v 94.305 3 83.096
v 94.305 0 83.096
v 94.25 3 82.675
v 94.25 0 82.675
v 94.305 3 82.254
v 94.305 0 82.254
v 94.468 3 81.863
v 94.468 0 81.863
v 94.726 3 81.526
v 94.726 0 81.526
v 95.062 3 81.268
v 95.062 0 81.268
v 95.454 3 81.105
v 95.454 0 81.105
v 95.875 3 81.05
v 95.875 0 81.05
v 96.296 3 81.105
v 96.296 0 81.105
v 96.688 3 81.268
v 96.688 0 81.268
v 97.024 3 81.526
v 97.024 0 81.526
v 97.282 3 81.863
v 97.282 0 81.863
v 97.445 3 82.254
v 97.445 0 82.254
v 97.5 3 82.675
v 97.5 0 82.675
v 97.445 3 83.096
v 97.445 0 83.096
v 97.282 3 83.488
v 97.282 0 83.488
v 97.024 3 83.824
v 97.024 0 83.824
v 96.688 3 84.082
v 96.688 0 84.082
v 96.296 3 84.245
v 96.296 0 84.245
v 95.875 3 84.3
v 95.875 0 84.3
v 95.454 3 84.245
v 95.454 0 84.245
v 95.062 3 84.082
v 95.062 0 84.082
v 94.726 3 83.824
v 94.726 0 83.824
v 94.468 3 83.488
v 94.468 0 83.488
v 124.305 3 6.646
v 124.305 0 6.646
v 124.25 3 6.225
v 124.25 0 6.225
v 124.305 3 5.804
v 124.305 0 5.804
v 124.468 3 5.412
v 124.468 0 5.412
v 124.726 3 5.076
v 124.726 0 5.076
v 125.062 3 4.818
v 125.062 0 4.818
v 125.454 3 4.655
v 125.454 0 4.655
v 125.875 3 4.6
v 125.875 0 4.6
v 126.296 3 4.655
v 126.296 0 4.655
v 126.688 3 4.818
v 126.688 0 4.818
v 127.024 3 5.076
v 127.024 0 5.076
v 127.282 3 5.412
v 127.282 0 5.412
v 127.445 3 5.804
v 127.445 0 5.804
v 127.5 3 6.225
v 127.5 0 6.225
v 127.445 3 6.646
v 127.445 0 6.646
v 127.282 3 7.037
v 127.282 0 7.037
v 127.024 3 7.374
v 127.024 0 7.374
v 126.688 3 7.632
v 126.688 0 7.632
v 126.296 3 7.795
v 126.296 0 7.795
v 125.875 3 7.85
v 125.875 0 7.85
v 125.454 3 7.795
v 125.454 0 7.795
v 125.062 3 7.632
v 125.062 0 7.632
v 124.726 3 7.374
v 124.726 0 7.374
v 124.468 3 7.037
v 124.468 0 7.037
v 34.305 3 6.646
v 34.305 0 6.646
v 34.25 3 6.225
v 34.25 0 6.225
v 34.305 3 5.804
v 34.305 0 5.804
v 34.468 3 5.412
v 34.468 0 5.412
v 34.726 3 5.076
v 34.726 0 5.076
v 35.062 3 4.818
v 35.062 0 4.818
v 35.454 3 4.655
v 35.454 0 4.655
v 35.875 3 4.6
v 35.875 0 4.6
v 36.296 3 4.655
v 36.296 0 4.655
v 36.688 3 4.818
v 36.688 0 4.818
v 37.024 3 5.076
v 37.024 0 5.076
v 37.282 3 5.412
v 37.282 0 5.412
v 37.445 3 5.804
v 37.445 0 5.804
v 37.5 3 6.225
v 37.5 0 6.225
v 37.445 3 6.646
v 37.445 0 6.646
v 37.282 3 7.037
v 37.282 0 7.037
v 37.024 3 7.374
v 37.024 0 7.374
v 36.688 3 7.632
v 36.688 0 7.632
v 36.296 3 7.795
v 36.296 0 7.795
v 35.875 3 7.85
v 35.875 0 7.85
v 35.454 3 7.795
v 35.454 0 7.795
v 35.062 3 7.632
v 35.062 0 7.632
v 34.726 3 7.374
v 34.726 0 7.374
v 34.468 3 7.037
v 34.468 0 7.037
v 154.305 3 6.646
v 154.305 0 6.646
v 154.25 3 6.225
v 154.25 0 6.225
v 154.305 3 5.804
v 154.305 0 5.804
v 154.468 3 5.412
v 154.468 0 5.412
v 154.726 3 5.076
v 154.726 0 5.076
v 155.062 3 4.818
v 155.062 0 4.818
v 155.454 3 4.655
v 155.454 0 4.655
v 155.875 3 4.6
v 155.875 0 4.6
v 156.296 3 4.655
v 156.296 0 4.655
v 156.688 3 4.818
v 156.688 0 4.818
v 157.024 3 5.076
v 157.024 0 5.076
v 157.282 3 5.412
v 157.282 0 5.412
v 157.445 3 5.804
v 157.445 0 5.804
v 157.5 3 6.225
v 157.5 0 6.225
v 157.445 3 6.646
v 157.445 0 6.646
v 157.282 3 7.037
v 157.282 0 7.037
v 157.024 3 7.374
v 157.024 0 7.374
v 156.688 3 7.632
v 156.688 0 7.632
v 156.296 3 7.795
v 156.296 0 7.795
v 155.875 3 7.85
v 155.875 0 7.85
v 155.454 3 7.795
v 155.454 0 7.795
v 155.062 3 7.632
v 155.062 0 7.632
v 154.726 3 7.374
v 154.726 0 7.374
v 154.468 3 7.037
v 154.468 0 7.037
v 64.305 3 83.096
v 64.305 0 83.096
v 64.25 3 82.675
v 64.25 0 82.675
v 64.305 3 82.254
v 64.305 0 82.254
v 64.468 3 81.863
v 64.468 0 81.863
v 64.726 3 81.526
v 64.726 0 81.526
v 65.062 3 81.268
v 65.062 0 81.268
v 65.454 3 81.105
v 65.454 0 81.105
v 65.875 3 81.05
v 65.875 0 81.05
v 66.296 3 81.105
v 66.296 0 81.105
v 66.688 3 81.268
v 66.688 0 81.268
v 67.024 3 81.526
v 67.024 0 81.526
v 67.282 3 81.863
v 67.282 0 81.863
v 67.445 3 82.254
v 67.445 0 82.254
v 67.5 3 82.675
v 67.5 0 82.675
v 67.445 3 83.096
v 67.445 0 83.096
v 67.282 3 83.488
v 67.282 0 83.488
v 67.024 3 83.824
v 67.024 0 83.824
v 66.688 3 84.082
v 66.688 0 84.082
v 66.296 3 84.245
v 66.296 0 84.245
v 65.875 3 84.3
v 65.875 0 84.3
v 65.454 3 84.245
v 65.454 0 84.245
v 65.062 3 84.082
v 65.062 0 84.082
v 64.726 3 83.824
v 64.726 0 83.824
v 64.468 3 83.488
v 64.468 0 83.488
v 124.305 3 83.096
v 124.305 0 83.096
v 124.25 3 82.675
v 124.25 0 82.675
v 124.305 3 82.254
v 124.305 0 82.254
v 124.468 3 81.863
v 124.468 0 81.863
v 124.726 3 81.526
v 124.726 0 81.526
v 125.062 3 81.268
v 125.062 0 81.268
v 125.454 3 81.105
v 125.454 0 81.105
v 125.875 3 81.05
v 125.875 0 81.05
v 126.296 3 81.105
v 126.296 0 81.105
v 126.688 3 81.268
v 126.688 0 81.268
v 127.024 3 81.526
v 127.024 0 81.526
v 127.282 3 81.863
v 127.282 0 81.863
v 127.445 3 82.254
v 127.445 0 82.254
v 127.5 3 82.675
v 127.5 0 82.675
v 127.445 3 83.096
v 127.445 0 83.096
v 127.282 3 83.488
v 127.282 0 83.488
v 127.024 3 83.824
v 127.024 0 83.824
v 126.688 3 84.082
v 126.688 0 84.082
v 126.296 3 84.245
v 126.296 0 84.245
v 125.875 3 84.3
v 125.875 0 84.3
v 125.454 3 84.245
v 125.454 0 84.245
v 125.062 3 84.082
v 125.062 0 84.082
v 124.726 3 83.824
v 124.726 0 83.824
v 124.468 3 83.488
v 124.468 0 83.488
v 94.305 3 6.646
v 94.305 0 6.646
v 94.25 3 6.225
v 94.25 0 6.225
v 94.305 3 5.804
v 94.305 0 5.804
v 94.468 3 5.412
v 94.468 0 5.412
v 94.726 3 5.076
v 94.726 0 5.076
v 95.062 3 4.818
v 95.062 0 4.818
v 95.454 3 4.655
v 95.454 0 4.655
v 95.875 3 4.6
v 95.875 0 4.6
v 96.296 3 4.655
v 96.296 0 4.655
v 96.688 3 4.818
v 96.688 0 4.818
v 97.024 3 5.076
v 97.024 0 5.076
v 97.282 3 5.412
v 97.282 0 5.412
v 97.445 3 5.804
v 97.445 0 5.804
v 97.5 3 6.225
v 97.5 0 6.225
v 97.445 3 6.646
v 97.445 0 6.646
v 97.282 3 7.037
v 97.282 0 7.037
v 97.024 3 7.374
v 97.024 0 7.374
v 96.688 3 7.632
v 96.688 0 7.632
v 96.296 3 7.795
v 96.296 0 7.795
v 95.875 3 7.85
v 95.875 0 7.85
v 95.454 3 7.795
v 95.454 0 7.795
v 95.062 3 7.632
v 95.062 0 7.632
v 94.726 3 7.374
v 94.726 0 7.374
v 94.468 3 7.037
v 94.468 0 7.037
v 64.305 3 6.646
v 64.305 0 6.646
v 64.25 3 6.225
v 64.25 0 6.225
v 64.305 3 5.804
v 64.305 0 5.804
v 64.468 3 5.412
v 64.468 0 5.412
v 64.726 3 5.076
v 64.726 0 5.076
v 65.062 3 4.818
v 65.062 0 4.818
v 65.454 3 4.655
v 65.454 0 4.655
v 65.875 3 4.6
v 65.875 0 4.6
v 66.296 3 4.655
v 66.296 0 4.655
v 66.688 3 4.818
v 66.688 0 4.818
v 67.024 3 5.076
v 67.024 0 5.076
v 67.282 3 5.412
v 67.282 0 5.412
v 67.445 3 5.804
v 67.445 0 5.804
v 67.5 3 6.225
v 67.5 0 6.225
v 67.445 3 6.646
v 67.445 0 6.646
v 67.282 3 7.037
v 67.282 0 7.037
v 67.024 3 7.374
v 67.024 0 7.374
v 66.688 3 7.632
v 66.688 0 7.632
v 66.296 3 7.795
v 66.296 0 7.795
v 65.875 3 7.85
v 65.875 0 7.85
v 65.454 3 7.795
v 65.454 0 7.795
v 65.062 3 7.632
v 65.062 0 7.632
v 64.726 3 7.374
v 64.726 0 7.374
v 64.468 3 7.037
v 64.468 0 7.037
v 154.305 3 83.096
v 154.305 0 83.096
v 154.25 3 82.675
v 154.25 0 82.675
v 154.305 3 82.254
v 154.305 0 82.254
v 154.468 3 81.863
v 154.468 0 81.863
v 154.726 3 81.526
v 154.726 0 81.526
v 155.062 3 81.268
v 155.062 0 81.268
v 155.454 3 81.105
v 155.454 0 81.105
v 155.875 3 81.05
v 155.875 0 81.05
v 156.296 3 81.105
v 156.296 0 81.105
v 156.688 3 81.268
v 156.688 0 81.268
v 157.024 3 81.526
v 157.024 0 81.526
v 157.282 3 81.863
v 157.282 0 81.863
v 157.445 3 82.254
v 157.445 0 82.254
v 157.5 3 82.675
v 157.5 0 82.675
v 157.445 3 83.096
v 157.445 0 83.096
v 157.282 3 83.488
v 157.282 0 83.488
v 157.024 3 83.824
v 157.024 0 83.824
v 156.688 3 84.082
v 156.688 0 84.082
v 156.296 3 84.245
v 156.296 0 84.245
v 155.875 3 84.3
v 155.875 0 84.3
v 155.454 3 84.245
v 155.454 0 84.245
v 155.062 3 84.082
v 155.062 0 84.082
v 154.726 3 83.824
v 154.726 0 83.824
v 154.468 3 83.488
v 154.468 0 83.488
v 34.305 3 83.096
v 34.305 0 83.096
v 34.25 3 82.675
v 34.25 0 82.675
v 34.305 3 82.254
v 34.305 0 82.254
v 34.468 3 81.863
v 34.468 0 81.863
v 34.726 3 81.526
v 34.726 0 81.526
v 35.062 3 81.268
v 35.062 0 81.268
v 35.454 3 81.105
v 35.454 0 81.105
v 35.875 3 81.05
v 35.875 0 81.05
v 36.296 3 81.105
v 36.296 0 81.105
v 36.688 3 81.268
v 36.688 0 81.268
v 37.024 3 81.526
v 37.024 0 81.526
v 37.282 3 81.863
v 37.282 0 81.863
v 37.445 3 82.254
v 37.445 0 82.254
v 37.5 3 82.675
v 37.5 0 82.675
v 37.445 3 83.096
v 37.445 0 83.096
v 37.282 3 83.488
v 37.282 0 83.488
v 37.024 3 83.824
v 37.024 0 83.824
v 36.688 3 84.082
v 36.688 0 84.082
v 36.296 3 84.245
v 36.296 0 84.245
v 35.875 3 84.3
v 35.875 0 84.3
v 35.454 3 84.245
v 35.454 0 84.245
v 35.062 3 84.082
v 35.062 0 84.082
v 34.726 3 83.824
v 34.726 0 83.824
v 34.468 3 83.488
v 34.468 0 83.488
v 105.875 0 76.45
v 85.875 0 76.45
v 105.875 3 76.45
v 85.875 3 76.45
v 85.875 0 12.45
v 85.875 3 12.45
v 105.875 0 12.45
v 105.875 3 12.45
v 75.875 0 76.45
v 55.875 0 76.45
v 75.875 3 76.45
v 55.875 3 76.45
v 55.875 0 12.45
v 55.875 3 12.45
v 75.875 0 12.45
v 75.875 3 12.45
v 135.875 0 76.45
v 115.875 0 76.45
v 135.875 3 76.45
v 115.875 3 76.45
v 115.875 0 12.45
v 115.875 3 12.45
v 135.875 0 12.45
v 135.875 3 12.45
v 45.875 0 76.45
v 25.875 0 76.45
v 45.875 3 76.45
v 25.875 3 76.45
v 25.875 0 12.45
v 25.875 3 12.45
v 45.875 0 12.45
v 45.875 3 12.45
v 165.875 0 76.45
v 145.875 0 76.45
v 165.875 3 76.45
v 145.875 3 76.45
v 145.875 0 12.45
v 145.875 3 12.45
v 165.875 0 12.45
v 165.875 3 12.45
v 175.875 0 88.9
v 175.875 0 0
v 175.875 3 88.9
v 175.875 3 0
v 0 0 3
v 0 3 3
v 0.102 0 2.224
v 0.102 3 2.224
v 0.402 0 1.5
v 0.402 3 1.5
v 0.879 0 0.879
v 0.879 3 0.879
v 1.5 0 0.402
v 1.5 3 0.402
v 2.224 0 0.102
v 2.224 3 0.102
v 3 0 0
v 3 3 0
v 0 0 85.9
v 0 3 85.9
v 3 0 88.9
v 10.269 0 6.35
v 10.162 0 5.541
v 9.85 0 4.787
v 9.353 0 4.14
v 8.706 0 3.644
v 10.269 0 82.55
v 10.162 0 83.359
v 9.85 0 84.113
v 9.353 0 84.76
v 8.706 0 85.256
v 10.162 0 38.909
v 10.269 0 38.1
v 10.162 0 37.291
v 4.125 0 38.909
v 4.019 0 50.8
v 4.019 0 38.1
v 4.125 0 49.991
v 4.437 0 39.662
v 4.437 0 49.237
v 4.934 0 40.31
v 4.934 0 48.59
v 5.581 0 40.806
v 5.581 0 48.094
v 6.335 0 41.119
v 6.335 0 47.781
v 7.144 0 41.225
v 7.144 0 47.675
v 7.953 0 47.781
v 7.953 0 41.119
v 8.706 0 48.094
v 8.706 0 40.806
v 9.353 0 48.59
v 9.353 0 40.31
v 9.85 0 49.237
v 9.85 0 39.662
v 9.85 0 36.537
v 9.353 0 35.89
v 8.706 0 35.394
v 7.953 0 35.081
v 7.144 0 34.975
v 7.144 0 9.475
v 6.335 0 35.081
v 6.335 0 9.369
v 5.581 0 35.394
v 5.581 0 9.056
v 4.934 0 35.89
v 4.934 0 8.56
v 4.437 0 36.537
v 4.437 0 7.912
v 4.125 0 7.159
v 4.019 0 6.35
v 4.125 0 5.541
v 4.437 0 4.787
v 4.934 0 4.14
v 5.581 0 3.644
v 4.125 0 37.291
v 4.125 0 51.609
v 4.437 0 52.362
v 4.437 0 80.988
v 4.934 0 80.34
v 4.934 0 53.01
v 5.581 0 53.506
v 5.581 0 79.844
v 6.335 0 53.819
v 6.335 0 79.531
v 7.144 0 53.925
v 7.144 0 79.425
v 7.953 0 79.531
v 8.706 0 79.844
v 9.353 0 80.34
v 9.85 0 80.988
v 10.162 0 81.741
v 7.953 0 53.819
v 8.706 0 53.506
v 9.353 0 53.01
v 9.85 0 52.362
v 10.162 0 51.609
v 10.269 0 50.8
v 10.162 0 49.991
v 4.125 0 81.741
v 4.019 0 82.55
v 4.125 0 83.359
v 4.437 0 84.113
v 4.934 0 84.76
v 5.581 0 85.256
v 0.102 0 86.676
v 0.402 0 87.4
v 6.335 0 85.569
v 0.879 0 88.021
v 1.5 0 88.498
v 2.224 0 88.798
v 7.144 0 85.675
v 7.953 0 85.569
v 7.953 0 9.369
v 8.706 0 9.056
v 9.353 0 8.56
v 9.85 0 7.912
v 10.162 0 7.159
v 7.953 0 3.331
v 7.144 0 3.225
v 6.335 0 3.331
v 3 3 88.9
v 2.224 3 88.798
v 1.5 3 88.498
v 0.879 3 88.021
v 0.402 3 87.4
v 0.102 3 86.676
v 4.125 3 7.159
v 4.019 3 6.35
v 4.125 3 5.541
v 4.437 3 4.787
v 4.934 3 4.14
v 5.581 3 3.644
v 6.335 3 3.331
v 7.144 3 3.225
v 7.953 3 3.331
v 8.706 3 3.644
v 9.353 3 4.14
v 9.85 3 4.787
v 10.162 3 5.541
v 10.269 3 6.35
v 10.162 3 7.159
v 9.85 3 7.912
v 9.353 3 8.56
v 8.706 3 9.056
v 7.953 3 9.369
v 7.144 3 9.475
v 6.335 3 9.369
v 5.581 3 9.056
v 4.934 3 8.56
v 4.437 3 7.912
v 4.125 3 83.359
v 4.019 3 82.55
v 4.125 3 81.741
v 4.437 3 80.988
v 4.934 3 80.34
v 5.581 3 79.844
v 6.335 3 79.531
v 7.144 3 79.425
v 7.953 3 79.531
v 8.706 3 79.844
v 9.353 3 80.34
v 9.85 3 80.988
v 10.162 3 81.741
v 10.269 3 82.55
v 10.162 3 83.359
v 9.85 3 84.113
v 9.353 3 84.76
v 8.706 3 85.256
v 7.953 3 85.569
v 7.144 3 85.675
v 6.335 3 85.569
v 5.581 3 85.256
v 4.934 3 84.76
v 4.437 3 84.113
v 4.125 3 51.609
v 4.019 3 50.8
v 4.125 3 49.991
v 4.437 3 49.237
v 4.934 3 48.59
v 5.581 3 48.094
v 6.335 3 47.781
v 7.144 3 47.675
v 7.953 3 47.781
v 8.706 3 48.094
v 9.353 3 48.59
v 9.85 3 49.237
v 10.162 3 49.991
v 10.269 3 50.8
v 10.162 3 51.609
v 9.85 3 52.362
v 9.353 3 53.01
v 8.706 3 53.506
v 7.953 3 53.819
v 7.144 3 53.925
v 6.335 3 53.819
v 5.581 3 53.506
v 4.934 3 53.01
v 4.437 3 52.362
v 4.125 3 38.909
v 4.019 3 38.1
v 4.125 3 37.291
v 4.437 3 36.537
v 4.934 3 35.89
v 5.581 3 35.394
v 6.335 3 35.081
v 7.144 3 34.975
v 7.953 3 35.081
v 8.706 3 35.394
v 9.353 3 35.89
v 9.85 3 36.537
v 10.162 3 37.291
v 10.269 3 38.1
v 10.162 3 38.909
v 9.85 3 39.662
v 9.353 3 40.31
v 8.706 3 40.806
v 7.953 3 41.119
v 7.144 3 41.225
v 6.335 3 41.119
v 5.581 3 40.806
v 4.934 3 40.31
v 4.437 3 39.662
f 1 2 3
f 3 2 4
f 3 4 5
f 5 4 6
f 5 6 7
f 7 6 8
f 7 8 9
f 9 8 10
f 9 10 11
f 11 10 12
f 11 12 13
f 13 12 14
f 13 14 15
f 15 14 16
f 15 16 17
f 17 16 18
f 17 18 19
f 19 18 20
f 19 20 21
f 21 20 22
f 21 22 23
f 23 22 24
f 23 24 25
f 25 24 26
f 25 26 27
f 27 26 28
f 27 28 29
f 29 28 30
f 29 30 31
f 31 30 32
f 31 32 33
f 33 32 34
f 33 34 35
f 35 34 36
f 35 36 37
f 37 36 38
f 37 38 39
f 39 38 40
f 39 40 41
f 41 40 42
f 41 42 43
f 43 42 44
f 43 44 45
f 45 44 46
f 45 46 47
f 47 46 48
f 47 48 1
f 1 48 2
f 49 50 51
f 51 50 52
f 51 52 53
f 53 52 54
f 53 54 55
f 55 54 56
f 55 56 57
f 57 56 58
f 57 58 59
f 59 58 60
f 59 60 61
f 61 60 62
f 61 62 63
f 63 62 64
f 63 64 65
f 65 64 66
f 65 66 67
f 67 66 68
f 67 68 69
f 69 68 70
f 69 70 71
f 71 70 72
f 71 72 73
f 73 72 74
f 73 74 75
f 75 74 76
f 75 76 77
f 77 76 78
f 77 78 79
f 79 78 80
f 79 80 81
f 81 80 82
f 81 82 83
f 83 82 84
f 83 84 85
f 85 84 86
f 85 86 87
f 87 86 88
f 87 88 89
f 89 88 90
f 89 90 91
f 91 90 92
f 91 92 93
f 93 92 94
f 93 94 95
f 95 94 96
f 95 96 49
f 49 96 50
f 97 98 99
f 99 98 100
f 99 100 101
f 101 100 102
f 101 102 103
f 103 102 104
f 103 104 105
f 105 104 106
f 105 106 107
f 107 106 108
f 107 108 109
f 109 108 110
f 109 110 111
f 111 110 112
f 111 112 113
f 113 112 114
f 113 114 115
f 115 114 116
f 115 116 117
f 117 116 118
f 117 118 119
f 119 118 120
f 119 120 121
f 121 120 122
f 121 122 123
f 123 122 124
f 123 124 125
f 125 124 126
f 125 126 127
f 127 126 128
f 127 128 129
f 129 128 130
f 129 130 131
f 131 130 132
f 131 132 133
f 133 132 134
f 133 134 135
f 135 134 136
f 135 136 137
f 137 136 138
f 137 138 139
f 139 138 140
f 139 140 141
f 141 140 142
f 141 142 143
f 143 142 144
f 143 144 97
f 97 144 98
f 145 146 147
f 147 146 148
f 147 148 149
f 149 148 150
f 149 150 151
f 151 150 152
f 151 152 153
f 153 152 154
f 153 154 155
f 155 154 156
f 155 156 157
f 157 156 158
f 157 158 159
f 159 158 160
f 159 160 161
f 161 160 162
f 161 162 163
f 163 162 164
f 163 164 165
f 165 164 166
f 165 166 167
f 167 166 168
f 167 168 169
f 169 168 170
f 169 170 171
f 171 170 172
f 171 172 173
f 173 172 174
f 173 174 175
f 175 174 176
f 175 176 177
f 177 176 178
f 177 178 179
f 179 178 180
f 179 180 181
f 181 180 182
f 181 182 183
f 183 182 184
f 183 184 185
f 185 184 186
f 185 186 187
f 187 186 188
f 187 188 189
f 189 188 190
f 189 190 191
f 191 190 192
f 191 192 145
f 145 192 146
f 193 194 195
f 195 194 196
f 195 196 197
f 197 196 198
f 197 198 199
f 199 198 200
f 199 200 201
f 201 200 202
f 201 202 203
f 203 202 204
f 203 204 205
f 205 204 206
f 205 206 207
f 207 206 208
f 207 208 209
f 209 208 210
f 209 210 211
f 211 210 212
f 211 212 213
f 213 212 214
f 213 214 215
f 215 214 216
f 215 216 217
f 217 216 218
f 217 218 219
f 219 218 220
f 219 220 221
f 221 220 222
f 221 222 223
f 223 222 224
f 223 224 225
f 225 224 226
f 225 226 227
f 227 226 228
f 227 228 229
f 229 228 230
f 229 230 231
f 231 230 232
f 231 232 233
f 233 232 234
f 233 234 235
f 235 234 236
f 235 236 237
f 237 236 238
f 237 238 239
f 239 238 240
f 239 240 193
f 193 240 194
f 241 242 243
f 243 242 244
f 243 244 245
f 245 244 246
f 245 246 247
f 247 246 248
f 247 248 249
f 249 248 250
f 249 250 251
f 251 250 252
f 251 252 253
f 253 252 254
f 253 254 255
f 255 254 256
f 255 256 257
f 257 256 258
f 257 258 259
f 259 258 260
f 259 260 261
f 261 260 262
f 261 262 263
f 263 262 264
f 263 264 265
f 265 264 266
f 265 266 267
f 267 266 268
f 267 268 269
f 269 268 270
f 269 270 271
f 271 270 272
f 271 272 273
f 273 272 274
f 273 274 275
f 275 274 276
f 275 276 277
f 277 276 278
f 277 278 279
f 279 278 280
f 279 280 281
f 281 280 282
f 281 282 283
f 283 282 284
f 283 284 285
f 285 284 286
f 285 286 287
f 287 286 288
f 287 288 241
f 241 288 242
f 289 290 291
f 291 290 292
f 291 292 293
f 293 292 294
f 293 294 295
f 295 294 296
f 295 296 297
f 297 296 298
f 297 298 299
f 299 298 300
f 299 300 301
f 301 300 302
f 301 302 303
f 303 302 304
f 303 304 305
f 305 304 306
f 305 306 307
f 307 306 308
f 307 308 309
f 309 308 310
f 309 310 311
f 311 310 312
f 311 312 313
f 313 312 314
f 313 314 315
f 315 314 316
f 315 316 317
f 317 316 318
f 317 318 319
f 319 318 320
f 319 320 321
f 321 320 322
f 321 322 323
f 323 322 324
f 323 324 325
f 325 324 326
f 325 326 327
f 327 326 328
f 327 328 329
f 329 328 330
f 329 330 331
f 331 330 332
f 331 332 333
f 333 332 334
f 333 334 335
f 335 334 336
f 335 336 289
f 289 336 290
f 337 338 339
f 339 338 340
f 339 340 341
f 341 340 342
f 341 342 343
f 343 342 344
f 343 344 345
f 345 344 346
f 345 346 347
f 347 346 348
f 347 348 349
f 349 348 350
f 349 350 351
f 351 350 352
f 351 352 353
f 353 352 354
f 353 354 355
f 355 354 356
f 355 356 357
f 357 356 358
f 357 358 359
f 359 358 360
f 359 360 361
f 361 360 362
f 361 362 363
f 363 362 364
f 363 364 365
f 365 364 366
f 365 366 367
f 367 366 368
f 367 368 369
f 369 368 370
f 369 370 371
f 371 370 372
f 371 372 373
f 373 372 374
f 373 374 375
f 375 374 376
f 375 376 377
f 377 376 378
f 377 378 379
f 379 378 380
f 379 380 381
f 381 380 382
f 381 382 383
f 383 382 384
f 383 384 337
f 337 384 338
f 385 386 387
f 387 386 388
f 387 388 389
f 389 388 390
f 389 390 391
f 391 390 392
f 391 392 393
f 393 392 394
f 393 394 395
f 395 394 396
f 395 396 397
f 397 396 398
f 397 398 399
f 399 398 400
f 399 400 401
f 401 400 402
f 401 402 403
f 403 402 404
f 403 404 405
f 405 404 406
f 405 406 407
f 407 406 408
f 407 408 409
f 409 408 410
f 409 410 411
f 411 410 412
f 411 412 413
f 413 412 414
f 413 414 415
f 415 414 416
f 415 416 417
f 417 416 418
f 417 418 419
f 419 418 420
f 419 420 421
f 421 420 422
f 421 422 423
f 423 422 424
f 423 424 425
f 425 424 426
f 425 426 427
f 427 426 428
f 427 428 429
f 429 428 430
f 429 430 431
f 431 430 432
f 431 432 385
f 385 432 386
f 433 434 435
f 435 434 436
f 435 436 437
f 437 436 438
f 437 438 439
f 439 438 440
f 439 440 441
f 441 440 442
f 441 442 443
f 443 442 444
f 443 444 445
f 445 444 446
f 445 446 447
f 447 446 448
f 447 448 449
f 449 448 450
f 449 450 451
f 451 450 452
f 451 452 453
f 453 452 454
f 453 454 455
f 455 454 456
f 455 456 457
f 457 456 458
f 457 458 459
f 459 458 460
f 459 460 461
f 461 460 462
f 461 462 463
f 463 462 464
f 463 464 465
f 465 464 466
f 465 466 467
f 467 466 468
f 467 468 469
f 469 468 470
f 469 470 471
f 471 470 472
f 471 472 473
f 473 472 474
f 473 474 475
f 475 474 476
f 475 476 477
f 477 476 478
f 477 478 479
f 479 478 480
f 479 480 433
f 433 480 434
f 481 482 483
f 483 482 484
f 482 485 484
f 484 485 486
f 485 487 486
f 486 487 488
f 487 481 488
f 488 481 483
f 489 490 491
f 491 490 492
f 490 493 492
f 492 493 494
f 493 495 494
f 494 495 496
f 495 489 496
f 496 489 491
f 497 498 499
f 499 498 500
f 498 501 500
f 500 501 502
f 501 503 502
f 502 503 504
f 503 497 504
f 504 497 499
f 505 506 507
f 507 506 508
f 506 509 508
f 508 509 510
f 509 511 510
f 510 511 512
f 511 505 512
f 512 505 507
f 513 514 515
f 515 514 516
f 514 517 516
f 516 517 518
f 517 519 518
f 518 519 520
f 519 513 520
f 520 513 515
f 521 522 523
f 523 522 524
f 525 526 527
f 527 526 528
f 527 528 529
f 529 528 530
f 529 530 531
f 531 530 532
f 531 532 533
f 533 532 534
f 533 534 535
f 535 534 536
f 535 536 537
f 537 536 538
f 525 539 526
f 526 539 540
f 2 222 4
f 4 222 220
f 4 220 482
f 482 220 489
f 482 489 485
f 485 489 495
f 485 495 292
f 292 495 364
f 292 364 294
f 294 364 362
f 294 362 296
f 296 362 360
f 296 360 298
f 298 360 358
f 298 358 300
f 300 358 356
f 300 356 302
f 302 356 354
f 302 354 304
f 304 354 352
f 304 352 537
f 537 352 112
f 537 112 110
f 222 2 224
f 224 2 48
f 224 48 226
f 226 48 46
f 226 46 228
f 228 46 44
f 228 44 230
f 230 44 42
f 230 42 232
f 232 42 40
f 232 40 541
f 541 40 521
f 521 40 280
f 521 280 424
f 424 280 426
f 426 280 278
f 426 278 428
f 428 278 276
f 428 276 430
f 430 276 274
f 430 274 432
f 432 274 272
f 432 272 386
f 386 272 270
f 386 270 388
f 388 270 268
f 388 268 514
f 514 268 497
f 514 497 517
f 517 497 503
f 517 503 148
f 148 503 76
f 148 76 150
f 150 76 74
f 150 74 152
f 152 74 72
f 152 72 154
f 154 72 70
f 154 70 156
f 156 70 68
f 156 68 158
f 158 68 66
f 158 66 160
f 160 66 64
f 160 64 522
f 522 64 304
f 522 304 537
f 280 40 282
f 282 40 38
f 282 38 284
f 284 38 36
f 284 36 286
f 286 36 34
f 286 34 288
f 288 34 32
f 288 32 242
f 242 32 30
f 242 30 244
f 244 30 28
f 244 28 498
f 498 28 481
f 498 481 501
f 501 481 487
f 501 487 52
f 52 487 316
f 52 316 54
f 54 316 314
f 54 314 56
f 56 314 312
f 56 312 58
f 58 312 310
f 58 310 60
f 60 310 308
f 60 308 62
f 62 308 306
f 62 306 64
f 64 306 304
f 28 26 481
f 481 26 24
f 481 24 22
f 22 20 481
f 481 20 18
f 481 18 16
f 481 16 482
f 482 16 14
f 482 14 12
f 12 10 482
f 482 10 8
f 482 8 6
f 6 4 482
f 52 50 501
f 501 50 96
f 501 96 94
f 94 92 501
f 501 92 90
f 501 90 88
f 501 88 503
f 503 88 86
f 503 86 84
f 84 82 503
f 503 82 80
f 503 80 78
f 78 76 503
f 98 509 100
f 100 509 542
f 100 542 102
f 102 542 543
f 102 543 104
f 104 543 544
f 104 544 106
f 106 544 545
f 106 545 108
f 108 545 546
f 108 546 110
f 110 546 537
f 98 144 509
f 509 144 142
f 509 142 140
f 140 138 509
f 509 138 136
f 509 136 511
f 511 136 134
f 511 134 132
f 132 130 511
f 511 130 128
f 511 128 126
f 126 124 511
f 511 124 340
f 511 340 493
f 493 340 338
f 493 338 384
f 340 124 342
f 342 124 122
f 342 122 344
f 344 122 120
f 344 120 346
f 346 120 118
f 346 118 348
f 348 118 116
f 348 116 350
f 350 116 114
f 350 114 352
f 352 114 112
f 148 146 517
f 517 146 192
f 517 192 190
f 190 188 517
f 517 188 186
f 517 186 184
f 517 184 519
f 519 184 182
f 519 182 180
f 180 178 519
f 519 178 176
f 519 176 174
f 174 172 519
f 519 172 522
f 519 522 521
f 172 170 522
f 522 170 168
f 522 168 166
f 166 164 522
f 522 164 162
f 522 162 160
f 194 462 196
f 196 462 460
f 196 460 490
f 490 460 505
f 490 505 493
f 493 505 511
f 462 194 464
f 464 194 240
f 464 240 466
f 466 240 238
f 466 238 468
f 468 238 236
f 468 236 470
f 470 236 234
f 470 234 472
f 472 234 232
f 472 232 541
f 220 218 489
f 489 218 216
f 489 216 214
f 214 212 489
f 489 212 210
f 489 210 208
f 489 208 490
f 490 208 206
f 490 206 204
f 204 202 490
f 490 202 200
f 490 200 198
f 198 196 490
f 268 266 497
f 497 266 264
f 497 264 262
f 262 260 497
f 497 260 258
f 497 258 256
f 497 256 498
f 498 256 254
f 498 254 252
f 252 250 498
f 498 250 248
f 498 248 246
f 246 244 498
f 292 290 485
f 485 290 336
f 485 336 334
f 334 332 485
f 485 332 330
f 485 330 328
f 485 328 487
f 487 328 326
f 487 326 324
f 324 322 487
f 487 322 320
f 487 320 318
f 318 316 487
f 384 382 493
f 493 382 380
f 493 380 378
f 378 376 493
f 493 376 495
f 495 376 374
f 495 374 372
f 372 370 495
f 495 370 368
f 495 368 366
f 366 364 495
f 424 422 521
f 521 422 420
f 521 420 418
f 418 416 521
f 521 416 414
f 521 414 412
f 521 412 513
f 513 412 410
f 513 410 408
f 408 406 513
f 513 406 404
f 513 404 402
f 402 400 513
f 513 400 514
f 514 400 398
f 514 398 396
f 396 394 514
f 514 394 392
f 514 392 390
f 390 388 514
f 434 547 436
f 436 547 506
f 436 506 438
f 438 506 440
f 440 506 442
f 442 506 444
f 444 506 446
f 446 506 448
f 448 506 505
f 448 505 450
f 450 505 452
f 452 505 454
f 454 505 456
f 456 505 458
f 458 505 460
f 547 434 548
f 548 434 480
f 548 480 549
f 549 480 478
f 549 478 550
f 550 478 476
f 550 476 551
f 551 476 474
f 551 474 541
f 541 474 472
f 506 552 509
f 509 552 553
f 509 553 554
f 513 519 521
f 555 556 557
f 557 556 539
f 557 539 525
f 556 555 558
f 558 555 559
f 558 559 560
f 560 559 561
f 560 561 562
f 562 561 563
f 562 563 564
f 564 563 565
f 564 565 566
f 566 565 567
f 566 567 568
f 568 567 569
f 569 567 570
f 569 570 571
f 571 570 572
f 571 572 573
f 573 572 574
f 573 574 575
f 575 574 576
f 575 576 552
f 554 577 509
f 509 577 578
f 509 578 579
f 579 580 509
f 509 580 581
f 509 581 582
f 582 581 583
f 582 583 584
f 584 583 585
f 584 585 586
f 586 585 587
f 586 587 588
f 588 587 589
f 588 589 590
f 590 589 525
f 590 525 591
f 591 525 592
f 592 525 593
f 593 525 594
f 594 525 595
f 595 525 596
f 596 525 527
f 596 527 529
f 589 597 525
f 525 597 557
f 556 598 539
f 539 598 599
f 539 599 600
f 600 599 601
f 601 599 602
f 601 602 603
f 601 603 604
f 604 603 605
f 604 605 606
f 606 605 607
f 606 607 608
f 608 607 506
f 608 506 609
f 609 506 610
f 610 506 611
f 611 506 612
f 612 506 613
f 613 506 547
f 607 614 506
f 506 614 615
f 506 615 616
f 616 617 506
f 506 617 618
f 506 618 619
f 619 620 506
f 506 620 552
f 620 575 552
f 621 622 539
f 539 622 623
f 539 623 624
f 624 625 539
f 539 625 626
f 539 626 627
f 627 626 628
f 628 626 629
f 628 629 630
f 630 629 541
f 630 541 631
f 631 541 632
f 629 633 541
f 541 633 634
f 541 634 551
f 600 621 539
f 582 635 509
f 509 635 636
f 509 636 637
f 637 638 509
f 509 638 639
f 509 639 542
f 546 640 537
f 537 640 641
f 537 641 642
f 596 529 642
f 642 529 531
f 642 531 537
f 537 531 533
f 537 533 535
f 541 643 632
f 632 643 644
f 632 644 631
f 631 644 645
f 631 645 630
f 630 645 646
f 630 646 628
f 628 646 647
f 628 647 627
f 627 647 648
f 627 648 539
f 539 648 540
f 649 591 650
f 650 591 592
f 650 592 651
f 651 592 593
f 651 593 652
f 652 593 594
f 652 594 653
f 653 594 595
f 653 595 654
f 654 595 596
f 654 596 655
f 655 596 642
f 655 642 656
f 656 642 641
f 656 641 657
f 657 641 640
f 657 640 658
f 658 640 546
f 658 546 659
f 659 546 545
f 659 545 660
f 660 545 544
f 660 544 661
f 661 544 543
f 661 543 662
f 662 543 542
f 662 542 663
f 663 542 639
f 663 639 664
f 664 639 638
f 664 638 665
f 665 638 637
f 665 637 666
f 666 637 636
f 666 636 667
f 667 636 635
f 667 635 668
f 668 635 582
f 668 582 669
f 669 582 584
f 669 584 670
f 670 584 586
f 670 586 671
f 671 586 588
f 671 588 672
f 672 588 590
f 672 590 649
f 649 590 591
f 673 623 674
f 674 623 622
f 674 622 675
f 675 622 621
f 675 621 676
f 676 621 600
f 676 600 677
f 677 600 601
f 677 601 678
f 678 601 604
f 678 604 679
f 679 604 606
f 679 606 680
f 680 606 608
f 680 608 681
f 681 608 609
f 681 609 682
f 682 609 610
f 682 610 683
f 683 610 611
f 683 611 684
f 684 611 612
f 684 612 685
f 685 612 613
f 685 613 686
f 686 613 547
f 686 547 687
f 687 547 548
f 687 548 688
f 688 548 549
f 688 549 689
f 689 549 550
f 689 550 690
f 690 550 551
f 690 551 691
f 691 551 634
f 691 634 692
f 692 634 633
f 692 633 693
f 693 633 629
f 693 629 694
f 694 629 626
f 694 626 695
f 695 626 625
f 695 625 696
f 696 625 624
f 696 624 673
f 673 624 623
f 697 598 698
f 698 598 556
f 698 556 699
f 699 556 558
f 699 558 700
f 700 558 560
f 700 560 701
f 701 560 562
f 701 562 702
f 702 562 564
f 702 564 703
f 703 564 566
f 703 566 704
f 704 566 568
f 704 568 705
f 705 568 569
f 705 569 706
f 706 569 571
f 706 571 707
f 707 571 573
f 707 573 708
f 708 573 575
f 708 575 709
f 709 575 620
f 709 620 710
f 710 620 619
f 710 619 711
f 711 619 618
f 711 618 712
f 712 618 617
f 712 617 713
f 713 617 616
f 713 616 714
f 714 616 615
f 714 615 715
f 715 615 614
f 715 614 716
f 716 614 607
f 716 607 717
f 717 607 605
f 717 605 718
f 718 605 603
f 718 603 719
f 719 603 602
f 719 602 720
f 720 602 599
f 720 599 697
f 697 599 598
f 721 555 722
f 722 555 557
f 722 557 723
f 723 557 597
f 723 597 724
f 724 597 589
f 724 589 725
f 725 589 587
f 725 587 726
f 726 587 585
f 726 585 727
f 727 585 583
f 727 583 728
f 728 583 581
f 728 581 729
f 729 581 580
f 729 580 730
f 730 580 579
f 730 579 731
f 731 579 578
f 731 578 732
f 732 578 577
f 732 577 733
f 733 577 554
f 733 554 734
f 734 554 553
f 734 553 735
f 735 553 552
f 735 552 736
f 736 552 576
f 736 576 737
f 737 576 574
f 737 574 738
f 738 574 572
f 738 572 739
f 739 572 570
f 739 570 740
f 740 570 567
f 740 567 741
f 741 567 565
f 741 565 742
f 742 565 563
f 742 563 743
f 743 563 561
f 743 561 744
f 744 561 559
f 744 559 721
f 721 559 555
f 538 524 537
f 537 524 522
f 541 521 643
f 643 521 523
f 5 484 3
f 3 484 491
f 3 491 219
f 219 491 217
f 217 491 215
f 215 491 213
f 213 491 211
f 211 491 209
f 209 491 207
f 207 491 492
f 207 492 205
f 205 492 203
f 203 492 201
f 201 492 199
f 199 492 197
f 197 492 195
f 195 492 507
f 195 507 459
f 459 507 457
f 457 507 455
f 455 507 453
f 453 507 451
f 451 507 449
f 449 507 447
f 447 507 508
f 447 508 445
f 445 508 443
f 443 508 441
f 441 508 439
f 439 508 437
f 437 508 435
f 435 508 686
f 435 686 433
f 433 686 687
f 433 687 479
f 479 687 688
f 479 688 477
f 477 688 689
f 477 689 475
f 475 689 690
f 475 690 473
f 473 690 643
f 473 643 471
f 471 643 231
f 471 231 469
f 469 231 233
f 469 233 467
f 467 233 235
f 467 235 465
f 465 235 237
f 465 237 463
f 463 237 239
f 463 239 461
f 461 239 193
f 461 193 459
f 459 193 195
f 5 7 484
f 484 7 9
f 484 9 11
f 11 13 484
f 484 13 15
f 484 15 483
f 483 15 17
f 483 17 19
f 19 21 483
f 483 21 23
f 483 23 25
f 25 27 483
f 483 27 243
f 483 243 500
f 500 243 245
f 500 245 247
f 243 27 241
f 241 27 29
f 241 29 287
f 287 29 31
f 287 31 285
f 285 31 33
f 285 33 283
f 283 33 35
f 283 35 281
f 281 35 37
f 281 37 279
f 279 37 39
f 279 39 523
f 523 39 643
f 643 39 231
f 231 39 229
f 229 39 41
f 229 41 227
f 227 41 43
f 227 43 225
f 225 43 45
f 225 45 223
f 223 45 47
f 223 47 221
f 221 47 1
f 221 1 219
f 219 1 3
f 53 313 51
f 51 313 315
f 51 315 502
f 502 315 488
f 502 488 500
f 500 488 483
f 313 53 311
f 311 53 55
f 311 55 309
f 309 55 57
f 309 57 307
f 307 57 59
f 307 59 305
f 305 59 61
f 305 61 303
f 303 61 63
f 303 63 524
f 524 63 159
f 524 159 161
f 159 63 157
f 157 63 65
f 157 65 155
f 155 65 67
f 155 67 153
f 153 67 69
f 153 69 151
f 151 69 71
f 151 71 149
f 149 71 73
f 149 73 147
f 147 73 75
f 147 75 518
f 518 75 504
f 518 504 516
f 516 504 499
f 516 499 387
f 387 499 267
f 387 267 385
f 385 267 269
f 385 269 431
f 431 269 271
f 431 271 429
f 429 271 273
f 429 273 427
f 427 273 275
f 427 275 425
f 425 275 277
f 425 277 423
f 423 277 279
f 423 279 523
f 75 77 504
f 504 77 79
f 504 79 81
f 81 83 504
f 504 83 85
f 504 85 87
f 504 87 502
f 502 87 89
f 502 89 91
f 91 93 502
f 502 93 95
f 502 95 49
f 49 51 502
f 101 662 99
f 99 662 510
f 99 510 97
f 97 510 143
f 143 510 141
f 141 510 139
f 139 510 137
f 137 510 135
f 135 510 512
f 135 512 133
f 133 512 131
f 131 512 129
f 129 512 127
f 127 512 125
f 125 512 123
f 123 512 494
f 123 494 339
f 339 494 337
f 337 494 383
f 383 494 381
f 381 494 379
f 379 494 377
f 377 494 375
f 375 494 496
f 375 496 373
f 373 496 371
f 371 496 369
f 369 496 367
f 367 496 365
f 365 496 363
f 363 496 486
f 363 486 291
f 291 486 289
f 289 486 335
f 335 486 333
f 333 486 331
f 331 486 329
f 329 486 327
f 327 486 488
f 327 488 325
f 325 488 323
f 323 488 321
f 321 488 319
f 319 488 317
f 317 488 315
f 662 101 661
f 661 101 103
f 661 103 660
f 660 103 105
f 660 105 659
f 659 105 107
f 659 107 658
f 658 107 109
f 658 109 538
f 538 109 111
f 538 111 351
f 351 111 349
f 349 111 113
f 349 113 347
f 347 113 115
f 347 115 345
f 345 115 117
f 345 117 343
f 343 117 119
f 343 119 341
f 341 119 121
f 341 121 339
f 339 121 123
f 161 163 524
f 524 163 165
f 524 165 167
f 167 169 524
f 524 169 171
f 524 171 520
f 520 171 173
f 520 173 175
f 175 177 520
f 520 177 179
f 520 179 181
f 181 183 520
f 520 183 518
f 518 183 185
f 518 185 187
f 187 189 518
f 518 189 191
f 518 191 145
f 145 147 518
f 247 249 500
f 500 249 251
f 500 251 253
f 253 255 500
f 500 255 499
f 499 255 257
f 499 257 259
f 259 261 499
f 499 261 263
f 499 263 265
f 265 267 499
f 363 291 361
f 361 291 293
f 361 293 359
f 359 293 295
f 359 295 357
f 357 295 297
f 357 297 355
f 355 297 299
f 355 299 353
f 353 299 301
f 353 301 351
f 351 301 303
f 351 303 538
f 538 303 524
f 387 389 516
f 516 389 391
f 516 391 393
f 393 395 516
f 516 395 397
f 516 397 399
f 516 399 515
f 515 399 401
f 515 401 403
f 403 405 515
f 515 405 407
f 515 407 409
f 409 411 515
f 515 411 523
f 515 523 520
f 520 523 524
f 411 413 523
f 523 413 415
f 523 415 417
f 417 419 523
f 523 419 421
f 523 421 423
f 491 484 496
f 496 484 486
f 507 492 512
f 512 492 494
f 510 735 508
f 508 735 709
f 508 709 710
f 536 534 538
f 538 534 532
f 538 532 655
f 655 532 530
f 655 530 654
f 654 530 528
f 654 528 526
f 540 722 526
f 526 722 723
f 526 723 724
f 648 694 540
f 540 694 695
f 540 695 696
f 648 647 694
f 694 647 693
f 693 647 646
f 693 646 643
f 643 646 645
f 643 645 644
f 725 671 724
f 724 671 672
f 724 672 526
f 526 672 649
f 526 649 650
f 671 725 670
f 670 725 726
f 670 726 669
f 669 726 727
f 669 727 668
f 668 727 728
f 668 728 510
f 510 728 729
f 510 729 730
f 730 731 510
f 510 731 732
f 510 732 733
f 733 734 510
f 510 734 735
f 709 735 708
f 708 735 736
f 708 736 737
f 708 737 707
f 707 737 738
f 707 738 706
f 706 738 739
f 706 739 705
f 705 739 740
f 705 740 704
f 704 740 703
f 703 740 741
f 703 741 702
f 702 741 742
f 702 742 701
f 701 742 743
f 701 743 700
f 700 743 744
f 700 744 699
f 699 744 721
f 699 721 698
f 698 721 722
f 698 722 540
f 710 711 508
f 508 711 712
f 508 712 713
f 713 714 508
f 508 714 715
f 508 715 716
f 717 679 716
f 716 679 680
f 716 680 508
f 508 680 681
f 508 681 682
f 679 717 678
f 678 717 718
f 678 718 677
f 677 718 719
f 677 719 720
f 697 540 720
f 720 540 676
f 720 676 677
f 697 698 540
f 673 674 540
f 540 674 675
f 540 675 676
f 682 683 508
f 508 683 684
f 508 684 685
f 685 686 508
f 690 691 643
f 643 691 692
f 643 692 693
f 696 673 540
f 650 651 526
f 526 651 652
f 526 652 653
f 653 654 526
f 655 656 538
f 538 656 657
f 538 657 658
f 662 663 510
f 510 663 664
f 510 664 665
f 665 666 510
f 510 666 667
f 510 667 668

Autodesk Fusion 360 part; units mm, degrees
sketch "Sketch1" plane through (0, 0, 0) normal (0, 1, 0) x (1, 0, 0)
  line L0 (0, 0) -> (15.875, 0)
  line L1 (15.875, 0) -> (15.875, -88.9)
  line L2 (15.875, -88.9) -> (0, -88.9)
  line L3 (0, -88.9) -> (0, 0)
  line L4 (0, -88.9) -> (15.875, -88.9)
  line L5 (15.875, -88.9) -> (15.875, -82.55)
  line L6 (15.875, -82.55) -> (0, -82.55)
  line L7 (0, -82.55) -> (0, -88.9)
  line L8 (0, -82.55) -> (15.875, -82.55)
  line L9 (15.875, -82.55) -> (15.875, -50.8)
  line L10 (15.875, -50.8) -> (0, -50.8)
  line L11 (0, -50.8) -> (0, -82.55)
  line L12 (0, -50.8) -> (15.875, -50.8)
  line L13 (15.875, -50.8) -> (15.875, -38.1)
  line L14 (15.875, -38.1) -> (0, -38.1)
  line L15 (0, -38.1) -> (0, -50.8)
  line L16 (0, -38.1) -> (15.875, -38.1)
  line L17 (15.875, -38.1) -> (15.875, -6.35)
  line L18 (15.875, -6.35) -> (0, -6.35)
  line L19 (0, -6.35) -> (0, -38.1)
  line L20 (15.875, -88.9) -> (18.875, -88.9)
  line L21 (18.875, -88.9) -> (18.875, 0)
  line L22 (18.875, 0) -> (15.875, 0)
  line L23 (15.875, 0) -> (15.875, -88.9)
  line L24 (15.875, -88.9) -> (7.1438, -88.9)
  line L25 (7.1438, -88.9) -> (7.1438, 0)
  line L26 (7.1438, 0) -> (15.875, 0)
  line L27 (15.875, 0) -> (15.875, -88.9)
  circle A0 centre (7.1438, -82.55) radius 3.125
  circle A1 centre (7.1438, -50.8) radius 3.125
  circle A2 centre (7.1438, -38.1) radius 3.125
  circle A3 centre (7.1438, -6.35) radius 3.125
  dimension "d1" = 15.875
  dimension "d2" = 88.9
  dimension "d3" = 6.35
  dimension "d4" = 31.75
  dimension "d5" = 12.7
  dimension "d6" = 31.75
  dimension "d7" = 3
  dimension "d8" = 8.7312
  dimension "d9" = 6.25
  dimension "d10" = 6.25
  dimension "d11" = 6.25
  dimension "d12" = 6.25
extrude "Extrude1" add sketch "Sketch1" along normal blind 3 contours L0 L3 L18 L25 A3 | L0 L1 L18 L23 L25 L26 L27 A3 | L3 L14 L16 L18 L19 L25 A2 A3 | L3 L10 L12 L14 L15 L16 L25 A1 A2 | L1 L14 L16 L17 L18 L23 L25 L27 A2 A3 | L3 L6 L8 L10 L11 L12 L25 A0 A1 | L1 L10 L12 L13 L14 L16 L23 L25 L27 A1 A2 | L2 L3 L4 L6 L7 L8 L25 A0 | L1 L6 L8 L9 L10 L12 L23 L25 L27 A0 A1 | L1 L2 L4 L5 L6 L8 L23 L24 L25 L27 A0
fillet "Fillet1" radius 3 1 edges at (0, 1.5, 88.9)
fillet "Fillet2" radius 3 1 edges at (0, 1.5, 0)
extrude "Extrude2" add 1 faces at (15.875, 2, 29.6333) along direction (1, 0, 0) blind 160
sketch "Sketch2" plane through (0, 0, 0) normal (0, -1, 0) x (1, 0, 0)
  circle A0 centre (7.1438, 38.1) radius 3.125
  circle A1 centre (7.1438, 50.8) radius 3.125
  circle A2 centre (7.1438, 82.55) radius 3.125
  circle A3 centre (7.1438, 6.35) radius 3.125
  arc A4 (0, 3) -> (3, 0) centre (3, 3) ccw
  line L0 (3, 0) -> (175.875, 0)
  line L1 (175.875, 0) -> (175.875, 88.9)
  line L2 (175.875, 88.9) -> (3, 88.9)
  arc A5 (3, 88.9) -> (0, 85.9) centre (3, 85.9) ccw
  line L3 (0, 85.9) -> (0, 3)
  line L4 (175.875, 88.9) -> (165.875, 88.9)
  line L5 (165.875, 88.9) -> (165.875, 0)
  line L6 (165.875, 0) -> (175.875, 0)
  line L7 (175.875, 0) -> (175.875, 88.9)
  line L8 (165.875, 88.9) -> (145.875, 88.9)
  line L9 (145.875, 88.9) -> (145.875, 0)
  line L10 (145.875, 0) -> (165.875, 0)
  line L11 (165.875, 0) -> (165.875, 88.9)
  line L12 (145.875, 88.9) -> (135.875, 88.9)
  line L13 (135.875, 88.9) -> (135.875, 0)
  line L14 (135.875, 0) -> (145.875, 0)
  line L15 (145.875, 0) -> (145.875, 88.9)
  line L16 (135.875, 88.9) -> (115.875, 88.9)
  line L17 (115.875, 88.9) -> (115.875, 0)
  line L18 (115.875, 0) -> (135.875, 0)
  line L19 (135.875, 0) -> (135.875, 88.9)
  line L20 (115.875, 88.9) -> (105.875, 88.9)
  line L21 (105.875, 88.9) -> (105.875, 0)
  line L22 (105.875, 0) -> (115.875, 0)
  line L23 (115.875, 0) -> (115.875, 88.9)
  line L24 (105.875, 88.9) -> (85.875, 88.9)
  line L25 (85.875, 88.9) -> (85.875, 0)
  line L26 (85.875, 0) -> (105.875, 0)
  line L27 (105.875, 0) -> (105.875, 88.9)
  line L28 (85.875, 88.9) -> (75.875, 88.9)
  line L29 (75.875, 88.9) -> (75.875, 0)
  line L30 (75.875, 0) -> (85.875, 0)
  line L31 (85.875, 0) -> (85.875, 88.9)
  line L32 (75.875, 88.9) -> (55.875, 88.9)
  line L33 (55.875, 88.9) -> (55.875, 0)
  line L34 (55.875, 0) -> (75.875, 0)
  line L35 (75.875, 0) -> (75.875, 88.9)
  line L36 (55.875, 88.9) -> (45.875, 88.9)
  line L37 (45.875, 88.9) -> (45.875, 0)
  line L38 (45.875, 0) -> (55.875, 0)
  line L39 (55.875, 0) -> (55.875, 88.9)
  line L40 (45.875, 88.9) -> (25.875, 88.9)
  line L41 (25.875, 88.9) -> (25.875, 0)
  line L42 (25.875, 0) -> (45.875, 0)
  line L43 (45.875, 0) -> (45.875, 88.9)
  line L44 (25.875, 88.9) -> (15.875, 88.9)
  line L45 (15.875, 88.9) -> (15.875, 0)
  line L46 (15.875, 0) -> (25.875, 0)
  line L47 (25.875, 0) -> (25.875, 88.9)
  line L48 (15.875, 0) -> (175.875, 0)
  line L49 (175.875, 0) -> (175.875, 44.45)
  line L50 (175.875, 44.45) -> (15.875, 44.45)
  line L51 (15.875, 44.45) -> (15.875, 0)
  line L52 (145.875, 44.45) -> (165.875, 44.45)
  line L53 (165.875, 44.45) -> (165.875, 76.45)
  line L54 (165.875, 76.45) -> (145.875, 76.45)
  line L55 (145.875, 76.45) -> (145.875, 44.45)
  line L56 (145.875, 44.45) -> (165.875, 44.45)
  line L57 (165.875, 44.45) -> (165.875, 12.45)
  line L58 (165.875, 12.45) -> (145.875, 12.45)
  line L59 (145.875, 12.45) -> (145.875, 44.45)
  line L60 (115.875, 44.45) -> (135.875, 44.45)
  line L61 (135.875, 44.45) -> (135.875, 76.45)
  line L62 (135.875, 76.45) -> (115.875, 76.45)
  line L63 (115.875, 76.45) -> (115.875, 44.45)
  line L64 (115.875, 44.45) -> (135.875, 44.45)
  line L65 (135.875, 44.45) -> (135.875, 12.45)
  line L66 (135.875, 12.45) -> (115.875, 12.45)
  line L67 (115.875, 12.45) -> (115.875, 44.45)
  line L68 (85.875, 44.45) -> (105.875, 44.45)
  line L69 (105.875, 44.45) -> (105.875, 76.45)
  line L70 (105.875, 76.45) -> (85.875, 76.45)
  line L71 (85.875, 76.45) -> (85.875, 44.45)
  line L72 (85.875, 44.45) -> (105.875, 44.45)
  line L73 (105.875, 44.45) -> (105.875, 12.45)
  line L74 (105.875, 12.45) -> (85.875, 12.45)
  line L75 (85.875, 12.45) -> (85.875, 44.45)
  line L76 (55.875, 44.45) -> (75.875, 44.45)
  line L77 (75.875, 44.45) -> (75.875, 76.45)
  line L78 (75.875, 76.45) -> (55.875, 76.45)
  line L79 (55.875, 76.45) -> (55.875, 44.45)
  line L80 (55.875, 44.45) -> (75.875, 44.45)
  line L81 (75.875, 44.45) -> (75.875, 12.45)
  line L82 (75.875, 12.45) -> (55.875, 12.45)
  line L83 (55.875, 12.45) -> (55.875, 44.45)
  line L84 (25.875, 44.45) -> (45.875, 44.45)
  line L85 (45.875, 44.45) -> (45.875, 76.45)
  line L86 (45.875, 76.45) -> (25.875, 76.45)
  line L87 (25.875, 76.45) -> (25.875, 44.45)
  line L88 (25.875, 44.45) -> (45.875, 44.45)
  line L89 (45.875, 44.45) -> (45.875, 12.45)
  line L90 (45.875, 12.45) -> (25.875, 12.45)
  line L91 (25.875, 12.45) -> (25.875, 44.45)
  dimension "d21" = 10
  dimension "d22" = 20
  dimension "d23" = 10
  dimension "d24" = 20
  dimension "d25" = 10
  dimension "d26" = 20
  dimension "d27" = 10
  dimension "d28" = 20
  dimension "d29" = 10
  dimension "d30" = 20
  dimension "d31" = 10
  dimension "d32" = 32
  dimension "d33" = 32
  dimension "d34" = 32
  dimension "d35" = 32
  dimension "d36" = 32
  dimension "d37" = 32
  dimension "d38" = 32
  dimension "d39" = 32
  dimension "d40" = 32
  dimension "d41" = 32
extrude "Extrude3" cut sketch "Sketch2" against normal blind 3 contours L37 L41 L43 L47 L50 L84 L88 L89 L90 L91 | L37 L41 L43 L47 L50 L84 L85 L86 L87 L88 | L29 L33 L35 L39 L50 L76 L80 L81 L82 L83 | L29 L33 L35 L39 L50 L76 L77 L78 L79 L80 | L21 L25 L27 L31 L50 L68 L72 L73 L74 L75 | L21 L25 L27 L31 L50 L68 L69 L70 L71 L72 | L13 L17 L19 L23 L50 L60 L64 L65 L66 L67 | L13 L17 L19 L23 L50 L60 L61 L62 L63 L64 | L5 L9 L11 L15 L50 L52 L56 L57 L58 L59 | L5 L9 L11 L15 L50 L52 L53 L54 L55 L56
sketch "Sketch3" plane through (0, 0, 0) normal (0, -1, 0) x (1, 0, 0)
  line L0 (85.875, 76.45) -> (105.875, 76.45)
  line L1 (105.875, 76.45) -> (105.875, 12.45)
  line L2 (105.875, 12.45) -> (85.875, 12.45)
  line L3 (85.875, 12.45) -> (85.875, 76.45)
  line L4 (55.875, 76.45) -> (75.875, 76.45)
  line L5 (75.875, 76.45) -> (75.875, 12.45)
  line L6 (75.875, 12.45) -> (55.875, 12.45)
  line L7 (55.875, 12.45) -> (55.875, 76.45)
  line L8 (115.875, 76.45) -> (135.875, 76.45)
  line L9 (135.875, 76.45) -> (135.875, 12.45)
  line L10 (135.875, 12.45) -> (115.875, 12.45)
  line L11 (115.875, 12.45) -> (115.875, 76.45)
  line L12 (25.875, 76.45) -> (45.875, 76.45)
  line L13 (45.875, 76.45) -> (45.875, 12.45)
  line L14 (45.875, 12.45) -> (25.875, 12.45)
  line L15 (25.875, 12.45) -> (25.875, 76.45)
  line L16 (145.875, 76.45) -> (165.875, 76.45)
  line L17 (165.875, 76.45) -> (165.875, 12.45)
  line L18 (165.875, 12.45) -> (145.875, 12.45)
  line L19 (145.875, 12.45) -> (145.875, 76.45)
  circle A0 centre (7.1438, 38.1) radius 3.125
  circle A1 centre (7.1438, 50.8) radius 3.125
  circle A2 centre (7.1438, 82.55) radius 3.125
  circle A3 centre (7.1438, 6.35) radius 3.125
  arc A4 (0, 3) -> (3, 0) centre (3, 3) ccw
  line L20 (3, 0) -> (175.875, 0)
  line L21 (175.875, 0) -> (175.875, 88.9)
  line L22 (175.875, 88.9) -> (3, 88.9)
  arc A5 (3, 88.9) -> (0, 85.9) centre (3, 85.9) ccw
  line L23 (0, 85.9) -> (0, 3)
  line L24 (175.875, 88.9) -> (155.875, 88.9)
  line L25 (155.875, 88.9) -> (155.875, 0)
  line L26 (155.875, 0) -> (175.875, 0)
  line L27 (175.875, 0) -> (175.875, 88.9)
  line L28 (155.875, 88.9) -> (125.875, 88.9)
  line L29 (125.875, 88.9) -> (125.875, 0)
  line L30 (125.875, 0) -> (155.875, 0)
  line L31 (155.875, 0) -> (155.875, 88.9)
  line L32 (125.875, 88.9) -> (95.875, 88.9)
  line L33 (95.875, 88.9) -> (95.875, 0)
  line L34 (95.875, 0) -> (125.875, 0)
  line L35 (125.875, 0) -> (125.875, 88.9)
  line L36 (95.875, 88.9) -> (65.875, 88.9)
  line L37 (65.875, 88.9) -> (65.875, 0)
  line L38 (65.875, 0) -> (95.875, 0)
  line L39 (95.875, 0) -> (95.875, 88.9)
  line L40 (65.875, 88.9) -> (35.875, 88.9)
  line L41 (35.875, 88.9) -> (35.875, 0)
  line L42 (35.875, 0) -> (65.875, 0)
  line L43 (65.875, 0) -> (65.875, 88.9)
  line L44 (175.875, 88.9) -> (35.875, 88.9)
  line L45 (35.875, 88.9) -> (35.875, 82.675)
  line L46 (35.875, 82.675) -> (175.875, 82.675)
  line L47 (175.875, 82.675) -> (175.875, 88.9)
  line L48 (175.875, 0) -> (35.875, 0)
  line L49 (35.875, 0) -> (35.875, 6.225)
  line L50 (35.875, 6.225) -> (175.875, 6.225)
  line L51 (175.875, 6.225) -> (175.875, 0)
  circle A6 centre (35.875, 82.675) radius 1.625
  circle A7 centre (65.875, 82.675) radius 1.625
  circle A8 centre (95.875, 82.675) radius 1.625
  circle A9 centre (125.875, 82.675) radius 1.625
  circle A10 centre (155.875, 82.675) radius 1.625
  circle A11 centre (35.875, 6.225) radius 1.625
  circle A12 centre (65.875, 6.225) radius 1.625
  circle A13 centre (95.875, 6.225) radius 1.625
  circle A14 centre (125.875, 6.225) radius 1.625
  circle A15 centre (155.875, 6.225) radius 1.625
  dimension "d44" = 20
  dimension "d45" = 30
  dimension "d46" = 30
  dimension "d47" = 30
  dimension "d48" = 30
  dimension "d49" = 6.225
  dimension "d50" = 6.225
  dimension "d51" = 3.25
  dimension "d52" = 3.25
  dimension "d53" = 3.25
  dimension "d54" = 3.25
  dimension "d55" = 3.25
  dimension "d56" = 3.25
  dimension "d57" = 3.25
  dimension "d58" = 3.25
  dimension "d59" = 3.25
  dimension "d60" = 3.25
extrude "Extrude4" cut sketch "Sketch3" against normal blind 3 contours L33 L39 L46 A8 | L33 L39 L46 A8 | L33 L39 L46 A8 | L33 L39 L46 A8 | L33 L39 L50 A13 | L33 L39 L50 A13 | L37 L43 L46 A7 | L37 L43 L46 A7 | L29 L35 L46 A9 | L29 L35 L46 A9 | L33 L39 L50 A13 | L33 L39 L50 A13 | L37 L43 L46 A7 | L37 L43 L46 A7 | L29 L35 L46 A9 | L29 L35 L46 A9 | L29 L35 L50 A14 | L29 L35 L50 A14 | L37 L43 L50 A12 | L37 L43 L50 A12 | L29 L35 L50 A14 | L29 L35 L50 A14 | L37 L43 L50 A12 | L37 L43 L50 A12 | L41 L46 A6 | L41 L45 L46 A6 | L25 L31 L46 A10 | L25 L31 L46 A10 | L25 L31 L46 A10 | L41 L45 A6 | L25 L31 L46 A10 | L25 L31 L50 A15 | L25 L31 L50 A15 | L41 L49 L50 A11 | L41 L50 A11 | L41 L49 A11 | L25 L31 L50 A15 | L25 L31 L50 A15
